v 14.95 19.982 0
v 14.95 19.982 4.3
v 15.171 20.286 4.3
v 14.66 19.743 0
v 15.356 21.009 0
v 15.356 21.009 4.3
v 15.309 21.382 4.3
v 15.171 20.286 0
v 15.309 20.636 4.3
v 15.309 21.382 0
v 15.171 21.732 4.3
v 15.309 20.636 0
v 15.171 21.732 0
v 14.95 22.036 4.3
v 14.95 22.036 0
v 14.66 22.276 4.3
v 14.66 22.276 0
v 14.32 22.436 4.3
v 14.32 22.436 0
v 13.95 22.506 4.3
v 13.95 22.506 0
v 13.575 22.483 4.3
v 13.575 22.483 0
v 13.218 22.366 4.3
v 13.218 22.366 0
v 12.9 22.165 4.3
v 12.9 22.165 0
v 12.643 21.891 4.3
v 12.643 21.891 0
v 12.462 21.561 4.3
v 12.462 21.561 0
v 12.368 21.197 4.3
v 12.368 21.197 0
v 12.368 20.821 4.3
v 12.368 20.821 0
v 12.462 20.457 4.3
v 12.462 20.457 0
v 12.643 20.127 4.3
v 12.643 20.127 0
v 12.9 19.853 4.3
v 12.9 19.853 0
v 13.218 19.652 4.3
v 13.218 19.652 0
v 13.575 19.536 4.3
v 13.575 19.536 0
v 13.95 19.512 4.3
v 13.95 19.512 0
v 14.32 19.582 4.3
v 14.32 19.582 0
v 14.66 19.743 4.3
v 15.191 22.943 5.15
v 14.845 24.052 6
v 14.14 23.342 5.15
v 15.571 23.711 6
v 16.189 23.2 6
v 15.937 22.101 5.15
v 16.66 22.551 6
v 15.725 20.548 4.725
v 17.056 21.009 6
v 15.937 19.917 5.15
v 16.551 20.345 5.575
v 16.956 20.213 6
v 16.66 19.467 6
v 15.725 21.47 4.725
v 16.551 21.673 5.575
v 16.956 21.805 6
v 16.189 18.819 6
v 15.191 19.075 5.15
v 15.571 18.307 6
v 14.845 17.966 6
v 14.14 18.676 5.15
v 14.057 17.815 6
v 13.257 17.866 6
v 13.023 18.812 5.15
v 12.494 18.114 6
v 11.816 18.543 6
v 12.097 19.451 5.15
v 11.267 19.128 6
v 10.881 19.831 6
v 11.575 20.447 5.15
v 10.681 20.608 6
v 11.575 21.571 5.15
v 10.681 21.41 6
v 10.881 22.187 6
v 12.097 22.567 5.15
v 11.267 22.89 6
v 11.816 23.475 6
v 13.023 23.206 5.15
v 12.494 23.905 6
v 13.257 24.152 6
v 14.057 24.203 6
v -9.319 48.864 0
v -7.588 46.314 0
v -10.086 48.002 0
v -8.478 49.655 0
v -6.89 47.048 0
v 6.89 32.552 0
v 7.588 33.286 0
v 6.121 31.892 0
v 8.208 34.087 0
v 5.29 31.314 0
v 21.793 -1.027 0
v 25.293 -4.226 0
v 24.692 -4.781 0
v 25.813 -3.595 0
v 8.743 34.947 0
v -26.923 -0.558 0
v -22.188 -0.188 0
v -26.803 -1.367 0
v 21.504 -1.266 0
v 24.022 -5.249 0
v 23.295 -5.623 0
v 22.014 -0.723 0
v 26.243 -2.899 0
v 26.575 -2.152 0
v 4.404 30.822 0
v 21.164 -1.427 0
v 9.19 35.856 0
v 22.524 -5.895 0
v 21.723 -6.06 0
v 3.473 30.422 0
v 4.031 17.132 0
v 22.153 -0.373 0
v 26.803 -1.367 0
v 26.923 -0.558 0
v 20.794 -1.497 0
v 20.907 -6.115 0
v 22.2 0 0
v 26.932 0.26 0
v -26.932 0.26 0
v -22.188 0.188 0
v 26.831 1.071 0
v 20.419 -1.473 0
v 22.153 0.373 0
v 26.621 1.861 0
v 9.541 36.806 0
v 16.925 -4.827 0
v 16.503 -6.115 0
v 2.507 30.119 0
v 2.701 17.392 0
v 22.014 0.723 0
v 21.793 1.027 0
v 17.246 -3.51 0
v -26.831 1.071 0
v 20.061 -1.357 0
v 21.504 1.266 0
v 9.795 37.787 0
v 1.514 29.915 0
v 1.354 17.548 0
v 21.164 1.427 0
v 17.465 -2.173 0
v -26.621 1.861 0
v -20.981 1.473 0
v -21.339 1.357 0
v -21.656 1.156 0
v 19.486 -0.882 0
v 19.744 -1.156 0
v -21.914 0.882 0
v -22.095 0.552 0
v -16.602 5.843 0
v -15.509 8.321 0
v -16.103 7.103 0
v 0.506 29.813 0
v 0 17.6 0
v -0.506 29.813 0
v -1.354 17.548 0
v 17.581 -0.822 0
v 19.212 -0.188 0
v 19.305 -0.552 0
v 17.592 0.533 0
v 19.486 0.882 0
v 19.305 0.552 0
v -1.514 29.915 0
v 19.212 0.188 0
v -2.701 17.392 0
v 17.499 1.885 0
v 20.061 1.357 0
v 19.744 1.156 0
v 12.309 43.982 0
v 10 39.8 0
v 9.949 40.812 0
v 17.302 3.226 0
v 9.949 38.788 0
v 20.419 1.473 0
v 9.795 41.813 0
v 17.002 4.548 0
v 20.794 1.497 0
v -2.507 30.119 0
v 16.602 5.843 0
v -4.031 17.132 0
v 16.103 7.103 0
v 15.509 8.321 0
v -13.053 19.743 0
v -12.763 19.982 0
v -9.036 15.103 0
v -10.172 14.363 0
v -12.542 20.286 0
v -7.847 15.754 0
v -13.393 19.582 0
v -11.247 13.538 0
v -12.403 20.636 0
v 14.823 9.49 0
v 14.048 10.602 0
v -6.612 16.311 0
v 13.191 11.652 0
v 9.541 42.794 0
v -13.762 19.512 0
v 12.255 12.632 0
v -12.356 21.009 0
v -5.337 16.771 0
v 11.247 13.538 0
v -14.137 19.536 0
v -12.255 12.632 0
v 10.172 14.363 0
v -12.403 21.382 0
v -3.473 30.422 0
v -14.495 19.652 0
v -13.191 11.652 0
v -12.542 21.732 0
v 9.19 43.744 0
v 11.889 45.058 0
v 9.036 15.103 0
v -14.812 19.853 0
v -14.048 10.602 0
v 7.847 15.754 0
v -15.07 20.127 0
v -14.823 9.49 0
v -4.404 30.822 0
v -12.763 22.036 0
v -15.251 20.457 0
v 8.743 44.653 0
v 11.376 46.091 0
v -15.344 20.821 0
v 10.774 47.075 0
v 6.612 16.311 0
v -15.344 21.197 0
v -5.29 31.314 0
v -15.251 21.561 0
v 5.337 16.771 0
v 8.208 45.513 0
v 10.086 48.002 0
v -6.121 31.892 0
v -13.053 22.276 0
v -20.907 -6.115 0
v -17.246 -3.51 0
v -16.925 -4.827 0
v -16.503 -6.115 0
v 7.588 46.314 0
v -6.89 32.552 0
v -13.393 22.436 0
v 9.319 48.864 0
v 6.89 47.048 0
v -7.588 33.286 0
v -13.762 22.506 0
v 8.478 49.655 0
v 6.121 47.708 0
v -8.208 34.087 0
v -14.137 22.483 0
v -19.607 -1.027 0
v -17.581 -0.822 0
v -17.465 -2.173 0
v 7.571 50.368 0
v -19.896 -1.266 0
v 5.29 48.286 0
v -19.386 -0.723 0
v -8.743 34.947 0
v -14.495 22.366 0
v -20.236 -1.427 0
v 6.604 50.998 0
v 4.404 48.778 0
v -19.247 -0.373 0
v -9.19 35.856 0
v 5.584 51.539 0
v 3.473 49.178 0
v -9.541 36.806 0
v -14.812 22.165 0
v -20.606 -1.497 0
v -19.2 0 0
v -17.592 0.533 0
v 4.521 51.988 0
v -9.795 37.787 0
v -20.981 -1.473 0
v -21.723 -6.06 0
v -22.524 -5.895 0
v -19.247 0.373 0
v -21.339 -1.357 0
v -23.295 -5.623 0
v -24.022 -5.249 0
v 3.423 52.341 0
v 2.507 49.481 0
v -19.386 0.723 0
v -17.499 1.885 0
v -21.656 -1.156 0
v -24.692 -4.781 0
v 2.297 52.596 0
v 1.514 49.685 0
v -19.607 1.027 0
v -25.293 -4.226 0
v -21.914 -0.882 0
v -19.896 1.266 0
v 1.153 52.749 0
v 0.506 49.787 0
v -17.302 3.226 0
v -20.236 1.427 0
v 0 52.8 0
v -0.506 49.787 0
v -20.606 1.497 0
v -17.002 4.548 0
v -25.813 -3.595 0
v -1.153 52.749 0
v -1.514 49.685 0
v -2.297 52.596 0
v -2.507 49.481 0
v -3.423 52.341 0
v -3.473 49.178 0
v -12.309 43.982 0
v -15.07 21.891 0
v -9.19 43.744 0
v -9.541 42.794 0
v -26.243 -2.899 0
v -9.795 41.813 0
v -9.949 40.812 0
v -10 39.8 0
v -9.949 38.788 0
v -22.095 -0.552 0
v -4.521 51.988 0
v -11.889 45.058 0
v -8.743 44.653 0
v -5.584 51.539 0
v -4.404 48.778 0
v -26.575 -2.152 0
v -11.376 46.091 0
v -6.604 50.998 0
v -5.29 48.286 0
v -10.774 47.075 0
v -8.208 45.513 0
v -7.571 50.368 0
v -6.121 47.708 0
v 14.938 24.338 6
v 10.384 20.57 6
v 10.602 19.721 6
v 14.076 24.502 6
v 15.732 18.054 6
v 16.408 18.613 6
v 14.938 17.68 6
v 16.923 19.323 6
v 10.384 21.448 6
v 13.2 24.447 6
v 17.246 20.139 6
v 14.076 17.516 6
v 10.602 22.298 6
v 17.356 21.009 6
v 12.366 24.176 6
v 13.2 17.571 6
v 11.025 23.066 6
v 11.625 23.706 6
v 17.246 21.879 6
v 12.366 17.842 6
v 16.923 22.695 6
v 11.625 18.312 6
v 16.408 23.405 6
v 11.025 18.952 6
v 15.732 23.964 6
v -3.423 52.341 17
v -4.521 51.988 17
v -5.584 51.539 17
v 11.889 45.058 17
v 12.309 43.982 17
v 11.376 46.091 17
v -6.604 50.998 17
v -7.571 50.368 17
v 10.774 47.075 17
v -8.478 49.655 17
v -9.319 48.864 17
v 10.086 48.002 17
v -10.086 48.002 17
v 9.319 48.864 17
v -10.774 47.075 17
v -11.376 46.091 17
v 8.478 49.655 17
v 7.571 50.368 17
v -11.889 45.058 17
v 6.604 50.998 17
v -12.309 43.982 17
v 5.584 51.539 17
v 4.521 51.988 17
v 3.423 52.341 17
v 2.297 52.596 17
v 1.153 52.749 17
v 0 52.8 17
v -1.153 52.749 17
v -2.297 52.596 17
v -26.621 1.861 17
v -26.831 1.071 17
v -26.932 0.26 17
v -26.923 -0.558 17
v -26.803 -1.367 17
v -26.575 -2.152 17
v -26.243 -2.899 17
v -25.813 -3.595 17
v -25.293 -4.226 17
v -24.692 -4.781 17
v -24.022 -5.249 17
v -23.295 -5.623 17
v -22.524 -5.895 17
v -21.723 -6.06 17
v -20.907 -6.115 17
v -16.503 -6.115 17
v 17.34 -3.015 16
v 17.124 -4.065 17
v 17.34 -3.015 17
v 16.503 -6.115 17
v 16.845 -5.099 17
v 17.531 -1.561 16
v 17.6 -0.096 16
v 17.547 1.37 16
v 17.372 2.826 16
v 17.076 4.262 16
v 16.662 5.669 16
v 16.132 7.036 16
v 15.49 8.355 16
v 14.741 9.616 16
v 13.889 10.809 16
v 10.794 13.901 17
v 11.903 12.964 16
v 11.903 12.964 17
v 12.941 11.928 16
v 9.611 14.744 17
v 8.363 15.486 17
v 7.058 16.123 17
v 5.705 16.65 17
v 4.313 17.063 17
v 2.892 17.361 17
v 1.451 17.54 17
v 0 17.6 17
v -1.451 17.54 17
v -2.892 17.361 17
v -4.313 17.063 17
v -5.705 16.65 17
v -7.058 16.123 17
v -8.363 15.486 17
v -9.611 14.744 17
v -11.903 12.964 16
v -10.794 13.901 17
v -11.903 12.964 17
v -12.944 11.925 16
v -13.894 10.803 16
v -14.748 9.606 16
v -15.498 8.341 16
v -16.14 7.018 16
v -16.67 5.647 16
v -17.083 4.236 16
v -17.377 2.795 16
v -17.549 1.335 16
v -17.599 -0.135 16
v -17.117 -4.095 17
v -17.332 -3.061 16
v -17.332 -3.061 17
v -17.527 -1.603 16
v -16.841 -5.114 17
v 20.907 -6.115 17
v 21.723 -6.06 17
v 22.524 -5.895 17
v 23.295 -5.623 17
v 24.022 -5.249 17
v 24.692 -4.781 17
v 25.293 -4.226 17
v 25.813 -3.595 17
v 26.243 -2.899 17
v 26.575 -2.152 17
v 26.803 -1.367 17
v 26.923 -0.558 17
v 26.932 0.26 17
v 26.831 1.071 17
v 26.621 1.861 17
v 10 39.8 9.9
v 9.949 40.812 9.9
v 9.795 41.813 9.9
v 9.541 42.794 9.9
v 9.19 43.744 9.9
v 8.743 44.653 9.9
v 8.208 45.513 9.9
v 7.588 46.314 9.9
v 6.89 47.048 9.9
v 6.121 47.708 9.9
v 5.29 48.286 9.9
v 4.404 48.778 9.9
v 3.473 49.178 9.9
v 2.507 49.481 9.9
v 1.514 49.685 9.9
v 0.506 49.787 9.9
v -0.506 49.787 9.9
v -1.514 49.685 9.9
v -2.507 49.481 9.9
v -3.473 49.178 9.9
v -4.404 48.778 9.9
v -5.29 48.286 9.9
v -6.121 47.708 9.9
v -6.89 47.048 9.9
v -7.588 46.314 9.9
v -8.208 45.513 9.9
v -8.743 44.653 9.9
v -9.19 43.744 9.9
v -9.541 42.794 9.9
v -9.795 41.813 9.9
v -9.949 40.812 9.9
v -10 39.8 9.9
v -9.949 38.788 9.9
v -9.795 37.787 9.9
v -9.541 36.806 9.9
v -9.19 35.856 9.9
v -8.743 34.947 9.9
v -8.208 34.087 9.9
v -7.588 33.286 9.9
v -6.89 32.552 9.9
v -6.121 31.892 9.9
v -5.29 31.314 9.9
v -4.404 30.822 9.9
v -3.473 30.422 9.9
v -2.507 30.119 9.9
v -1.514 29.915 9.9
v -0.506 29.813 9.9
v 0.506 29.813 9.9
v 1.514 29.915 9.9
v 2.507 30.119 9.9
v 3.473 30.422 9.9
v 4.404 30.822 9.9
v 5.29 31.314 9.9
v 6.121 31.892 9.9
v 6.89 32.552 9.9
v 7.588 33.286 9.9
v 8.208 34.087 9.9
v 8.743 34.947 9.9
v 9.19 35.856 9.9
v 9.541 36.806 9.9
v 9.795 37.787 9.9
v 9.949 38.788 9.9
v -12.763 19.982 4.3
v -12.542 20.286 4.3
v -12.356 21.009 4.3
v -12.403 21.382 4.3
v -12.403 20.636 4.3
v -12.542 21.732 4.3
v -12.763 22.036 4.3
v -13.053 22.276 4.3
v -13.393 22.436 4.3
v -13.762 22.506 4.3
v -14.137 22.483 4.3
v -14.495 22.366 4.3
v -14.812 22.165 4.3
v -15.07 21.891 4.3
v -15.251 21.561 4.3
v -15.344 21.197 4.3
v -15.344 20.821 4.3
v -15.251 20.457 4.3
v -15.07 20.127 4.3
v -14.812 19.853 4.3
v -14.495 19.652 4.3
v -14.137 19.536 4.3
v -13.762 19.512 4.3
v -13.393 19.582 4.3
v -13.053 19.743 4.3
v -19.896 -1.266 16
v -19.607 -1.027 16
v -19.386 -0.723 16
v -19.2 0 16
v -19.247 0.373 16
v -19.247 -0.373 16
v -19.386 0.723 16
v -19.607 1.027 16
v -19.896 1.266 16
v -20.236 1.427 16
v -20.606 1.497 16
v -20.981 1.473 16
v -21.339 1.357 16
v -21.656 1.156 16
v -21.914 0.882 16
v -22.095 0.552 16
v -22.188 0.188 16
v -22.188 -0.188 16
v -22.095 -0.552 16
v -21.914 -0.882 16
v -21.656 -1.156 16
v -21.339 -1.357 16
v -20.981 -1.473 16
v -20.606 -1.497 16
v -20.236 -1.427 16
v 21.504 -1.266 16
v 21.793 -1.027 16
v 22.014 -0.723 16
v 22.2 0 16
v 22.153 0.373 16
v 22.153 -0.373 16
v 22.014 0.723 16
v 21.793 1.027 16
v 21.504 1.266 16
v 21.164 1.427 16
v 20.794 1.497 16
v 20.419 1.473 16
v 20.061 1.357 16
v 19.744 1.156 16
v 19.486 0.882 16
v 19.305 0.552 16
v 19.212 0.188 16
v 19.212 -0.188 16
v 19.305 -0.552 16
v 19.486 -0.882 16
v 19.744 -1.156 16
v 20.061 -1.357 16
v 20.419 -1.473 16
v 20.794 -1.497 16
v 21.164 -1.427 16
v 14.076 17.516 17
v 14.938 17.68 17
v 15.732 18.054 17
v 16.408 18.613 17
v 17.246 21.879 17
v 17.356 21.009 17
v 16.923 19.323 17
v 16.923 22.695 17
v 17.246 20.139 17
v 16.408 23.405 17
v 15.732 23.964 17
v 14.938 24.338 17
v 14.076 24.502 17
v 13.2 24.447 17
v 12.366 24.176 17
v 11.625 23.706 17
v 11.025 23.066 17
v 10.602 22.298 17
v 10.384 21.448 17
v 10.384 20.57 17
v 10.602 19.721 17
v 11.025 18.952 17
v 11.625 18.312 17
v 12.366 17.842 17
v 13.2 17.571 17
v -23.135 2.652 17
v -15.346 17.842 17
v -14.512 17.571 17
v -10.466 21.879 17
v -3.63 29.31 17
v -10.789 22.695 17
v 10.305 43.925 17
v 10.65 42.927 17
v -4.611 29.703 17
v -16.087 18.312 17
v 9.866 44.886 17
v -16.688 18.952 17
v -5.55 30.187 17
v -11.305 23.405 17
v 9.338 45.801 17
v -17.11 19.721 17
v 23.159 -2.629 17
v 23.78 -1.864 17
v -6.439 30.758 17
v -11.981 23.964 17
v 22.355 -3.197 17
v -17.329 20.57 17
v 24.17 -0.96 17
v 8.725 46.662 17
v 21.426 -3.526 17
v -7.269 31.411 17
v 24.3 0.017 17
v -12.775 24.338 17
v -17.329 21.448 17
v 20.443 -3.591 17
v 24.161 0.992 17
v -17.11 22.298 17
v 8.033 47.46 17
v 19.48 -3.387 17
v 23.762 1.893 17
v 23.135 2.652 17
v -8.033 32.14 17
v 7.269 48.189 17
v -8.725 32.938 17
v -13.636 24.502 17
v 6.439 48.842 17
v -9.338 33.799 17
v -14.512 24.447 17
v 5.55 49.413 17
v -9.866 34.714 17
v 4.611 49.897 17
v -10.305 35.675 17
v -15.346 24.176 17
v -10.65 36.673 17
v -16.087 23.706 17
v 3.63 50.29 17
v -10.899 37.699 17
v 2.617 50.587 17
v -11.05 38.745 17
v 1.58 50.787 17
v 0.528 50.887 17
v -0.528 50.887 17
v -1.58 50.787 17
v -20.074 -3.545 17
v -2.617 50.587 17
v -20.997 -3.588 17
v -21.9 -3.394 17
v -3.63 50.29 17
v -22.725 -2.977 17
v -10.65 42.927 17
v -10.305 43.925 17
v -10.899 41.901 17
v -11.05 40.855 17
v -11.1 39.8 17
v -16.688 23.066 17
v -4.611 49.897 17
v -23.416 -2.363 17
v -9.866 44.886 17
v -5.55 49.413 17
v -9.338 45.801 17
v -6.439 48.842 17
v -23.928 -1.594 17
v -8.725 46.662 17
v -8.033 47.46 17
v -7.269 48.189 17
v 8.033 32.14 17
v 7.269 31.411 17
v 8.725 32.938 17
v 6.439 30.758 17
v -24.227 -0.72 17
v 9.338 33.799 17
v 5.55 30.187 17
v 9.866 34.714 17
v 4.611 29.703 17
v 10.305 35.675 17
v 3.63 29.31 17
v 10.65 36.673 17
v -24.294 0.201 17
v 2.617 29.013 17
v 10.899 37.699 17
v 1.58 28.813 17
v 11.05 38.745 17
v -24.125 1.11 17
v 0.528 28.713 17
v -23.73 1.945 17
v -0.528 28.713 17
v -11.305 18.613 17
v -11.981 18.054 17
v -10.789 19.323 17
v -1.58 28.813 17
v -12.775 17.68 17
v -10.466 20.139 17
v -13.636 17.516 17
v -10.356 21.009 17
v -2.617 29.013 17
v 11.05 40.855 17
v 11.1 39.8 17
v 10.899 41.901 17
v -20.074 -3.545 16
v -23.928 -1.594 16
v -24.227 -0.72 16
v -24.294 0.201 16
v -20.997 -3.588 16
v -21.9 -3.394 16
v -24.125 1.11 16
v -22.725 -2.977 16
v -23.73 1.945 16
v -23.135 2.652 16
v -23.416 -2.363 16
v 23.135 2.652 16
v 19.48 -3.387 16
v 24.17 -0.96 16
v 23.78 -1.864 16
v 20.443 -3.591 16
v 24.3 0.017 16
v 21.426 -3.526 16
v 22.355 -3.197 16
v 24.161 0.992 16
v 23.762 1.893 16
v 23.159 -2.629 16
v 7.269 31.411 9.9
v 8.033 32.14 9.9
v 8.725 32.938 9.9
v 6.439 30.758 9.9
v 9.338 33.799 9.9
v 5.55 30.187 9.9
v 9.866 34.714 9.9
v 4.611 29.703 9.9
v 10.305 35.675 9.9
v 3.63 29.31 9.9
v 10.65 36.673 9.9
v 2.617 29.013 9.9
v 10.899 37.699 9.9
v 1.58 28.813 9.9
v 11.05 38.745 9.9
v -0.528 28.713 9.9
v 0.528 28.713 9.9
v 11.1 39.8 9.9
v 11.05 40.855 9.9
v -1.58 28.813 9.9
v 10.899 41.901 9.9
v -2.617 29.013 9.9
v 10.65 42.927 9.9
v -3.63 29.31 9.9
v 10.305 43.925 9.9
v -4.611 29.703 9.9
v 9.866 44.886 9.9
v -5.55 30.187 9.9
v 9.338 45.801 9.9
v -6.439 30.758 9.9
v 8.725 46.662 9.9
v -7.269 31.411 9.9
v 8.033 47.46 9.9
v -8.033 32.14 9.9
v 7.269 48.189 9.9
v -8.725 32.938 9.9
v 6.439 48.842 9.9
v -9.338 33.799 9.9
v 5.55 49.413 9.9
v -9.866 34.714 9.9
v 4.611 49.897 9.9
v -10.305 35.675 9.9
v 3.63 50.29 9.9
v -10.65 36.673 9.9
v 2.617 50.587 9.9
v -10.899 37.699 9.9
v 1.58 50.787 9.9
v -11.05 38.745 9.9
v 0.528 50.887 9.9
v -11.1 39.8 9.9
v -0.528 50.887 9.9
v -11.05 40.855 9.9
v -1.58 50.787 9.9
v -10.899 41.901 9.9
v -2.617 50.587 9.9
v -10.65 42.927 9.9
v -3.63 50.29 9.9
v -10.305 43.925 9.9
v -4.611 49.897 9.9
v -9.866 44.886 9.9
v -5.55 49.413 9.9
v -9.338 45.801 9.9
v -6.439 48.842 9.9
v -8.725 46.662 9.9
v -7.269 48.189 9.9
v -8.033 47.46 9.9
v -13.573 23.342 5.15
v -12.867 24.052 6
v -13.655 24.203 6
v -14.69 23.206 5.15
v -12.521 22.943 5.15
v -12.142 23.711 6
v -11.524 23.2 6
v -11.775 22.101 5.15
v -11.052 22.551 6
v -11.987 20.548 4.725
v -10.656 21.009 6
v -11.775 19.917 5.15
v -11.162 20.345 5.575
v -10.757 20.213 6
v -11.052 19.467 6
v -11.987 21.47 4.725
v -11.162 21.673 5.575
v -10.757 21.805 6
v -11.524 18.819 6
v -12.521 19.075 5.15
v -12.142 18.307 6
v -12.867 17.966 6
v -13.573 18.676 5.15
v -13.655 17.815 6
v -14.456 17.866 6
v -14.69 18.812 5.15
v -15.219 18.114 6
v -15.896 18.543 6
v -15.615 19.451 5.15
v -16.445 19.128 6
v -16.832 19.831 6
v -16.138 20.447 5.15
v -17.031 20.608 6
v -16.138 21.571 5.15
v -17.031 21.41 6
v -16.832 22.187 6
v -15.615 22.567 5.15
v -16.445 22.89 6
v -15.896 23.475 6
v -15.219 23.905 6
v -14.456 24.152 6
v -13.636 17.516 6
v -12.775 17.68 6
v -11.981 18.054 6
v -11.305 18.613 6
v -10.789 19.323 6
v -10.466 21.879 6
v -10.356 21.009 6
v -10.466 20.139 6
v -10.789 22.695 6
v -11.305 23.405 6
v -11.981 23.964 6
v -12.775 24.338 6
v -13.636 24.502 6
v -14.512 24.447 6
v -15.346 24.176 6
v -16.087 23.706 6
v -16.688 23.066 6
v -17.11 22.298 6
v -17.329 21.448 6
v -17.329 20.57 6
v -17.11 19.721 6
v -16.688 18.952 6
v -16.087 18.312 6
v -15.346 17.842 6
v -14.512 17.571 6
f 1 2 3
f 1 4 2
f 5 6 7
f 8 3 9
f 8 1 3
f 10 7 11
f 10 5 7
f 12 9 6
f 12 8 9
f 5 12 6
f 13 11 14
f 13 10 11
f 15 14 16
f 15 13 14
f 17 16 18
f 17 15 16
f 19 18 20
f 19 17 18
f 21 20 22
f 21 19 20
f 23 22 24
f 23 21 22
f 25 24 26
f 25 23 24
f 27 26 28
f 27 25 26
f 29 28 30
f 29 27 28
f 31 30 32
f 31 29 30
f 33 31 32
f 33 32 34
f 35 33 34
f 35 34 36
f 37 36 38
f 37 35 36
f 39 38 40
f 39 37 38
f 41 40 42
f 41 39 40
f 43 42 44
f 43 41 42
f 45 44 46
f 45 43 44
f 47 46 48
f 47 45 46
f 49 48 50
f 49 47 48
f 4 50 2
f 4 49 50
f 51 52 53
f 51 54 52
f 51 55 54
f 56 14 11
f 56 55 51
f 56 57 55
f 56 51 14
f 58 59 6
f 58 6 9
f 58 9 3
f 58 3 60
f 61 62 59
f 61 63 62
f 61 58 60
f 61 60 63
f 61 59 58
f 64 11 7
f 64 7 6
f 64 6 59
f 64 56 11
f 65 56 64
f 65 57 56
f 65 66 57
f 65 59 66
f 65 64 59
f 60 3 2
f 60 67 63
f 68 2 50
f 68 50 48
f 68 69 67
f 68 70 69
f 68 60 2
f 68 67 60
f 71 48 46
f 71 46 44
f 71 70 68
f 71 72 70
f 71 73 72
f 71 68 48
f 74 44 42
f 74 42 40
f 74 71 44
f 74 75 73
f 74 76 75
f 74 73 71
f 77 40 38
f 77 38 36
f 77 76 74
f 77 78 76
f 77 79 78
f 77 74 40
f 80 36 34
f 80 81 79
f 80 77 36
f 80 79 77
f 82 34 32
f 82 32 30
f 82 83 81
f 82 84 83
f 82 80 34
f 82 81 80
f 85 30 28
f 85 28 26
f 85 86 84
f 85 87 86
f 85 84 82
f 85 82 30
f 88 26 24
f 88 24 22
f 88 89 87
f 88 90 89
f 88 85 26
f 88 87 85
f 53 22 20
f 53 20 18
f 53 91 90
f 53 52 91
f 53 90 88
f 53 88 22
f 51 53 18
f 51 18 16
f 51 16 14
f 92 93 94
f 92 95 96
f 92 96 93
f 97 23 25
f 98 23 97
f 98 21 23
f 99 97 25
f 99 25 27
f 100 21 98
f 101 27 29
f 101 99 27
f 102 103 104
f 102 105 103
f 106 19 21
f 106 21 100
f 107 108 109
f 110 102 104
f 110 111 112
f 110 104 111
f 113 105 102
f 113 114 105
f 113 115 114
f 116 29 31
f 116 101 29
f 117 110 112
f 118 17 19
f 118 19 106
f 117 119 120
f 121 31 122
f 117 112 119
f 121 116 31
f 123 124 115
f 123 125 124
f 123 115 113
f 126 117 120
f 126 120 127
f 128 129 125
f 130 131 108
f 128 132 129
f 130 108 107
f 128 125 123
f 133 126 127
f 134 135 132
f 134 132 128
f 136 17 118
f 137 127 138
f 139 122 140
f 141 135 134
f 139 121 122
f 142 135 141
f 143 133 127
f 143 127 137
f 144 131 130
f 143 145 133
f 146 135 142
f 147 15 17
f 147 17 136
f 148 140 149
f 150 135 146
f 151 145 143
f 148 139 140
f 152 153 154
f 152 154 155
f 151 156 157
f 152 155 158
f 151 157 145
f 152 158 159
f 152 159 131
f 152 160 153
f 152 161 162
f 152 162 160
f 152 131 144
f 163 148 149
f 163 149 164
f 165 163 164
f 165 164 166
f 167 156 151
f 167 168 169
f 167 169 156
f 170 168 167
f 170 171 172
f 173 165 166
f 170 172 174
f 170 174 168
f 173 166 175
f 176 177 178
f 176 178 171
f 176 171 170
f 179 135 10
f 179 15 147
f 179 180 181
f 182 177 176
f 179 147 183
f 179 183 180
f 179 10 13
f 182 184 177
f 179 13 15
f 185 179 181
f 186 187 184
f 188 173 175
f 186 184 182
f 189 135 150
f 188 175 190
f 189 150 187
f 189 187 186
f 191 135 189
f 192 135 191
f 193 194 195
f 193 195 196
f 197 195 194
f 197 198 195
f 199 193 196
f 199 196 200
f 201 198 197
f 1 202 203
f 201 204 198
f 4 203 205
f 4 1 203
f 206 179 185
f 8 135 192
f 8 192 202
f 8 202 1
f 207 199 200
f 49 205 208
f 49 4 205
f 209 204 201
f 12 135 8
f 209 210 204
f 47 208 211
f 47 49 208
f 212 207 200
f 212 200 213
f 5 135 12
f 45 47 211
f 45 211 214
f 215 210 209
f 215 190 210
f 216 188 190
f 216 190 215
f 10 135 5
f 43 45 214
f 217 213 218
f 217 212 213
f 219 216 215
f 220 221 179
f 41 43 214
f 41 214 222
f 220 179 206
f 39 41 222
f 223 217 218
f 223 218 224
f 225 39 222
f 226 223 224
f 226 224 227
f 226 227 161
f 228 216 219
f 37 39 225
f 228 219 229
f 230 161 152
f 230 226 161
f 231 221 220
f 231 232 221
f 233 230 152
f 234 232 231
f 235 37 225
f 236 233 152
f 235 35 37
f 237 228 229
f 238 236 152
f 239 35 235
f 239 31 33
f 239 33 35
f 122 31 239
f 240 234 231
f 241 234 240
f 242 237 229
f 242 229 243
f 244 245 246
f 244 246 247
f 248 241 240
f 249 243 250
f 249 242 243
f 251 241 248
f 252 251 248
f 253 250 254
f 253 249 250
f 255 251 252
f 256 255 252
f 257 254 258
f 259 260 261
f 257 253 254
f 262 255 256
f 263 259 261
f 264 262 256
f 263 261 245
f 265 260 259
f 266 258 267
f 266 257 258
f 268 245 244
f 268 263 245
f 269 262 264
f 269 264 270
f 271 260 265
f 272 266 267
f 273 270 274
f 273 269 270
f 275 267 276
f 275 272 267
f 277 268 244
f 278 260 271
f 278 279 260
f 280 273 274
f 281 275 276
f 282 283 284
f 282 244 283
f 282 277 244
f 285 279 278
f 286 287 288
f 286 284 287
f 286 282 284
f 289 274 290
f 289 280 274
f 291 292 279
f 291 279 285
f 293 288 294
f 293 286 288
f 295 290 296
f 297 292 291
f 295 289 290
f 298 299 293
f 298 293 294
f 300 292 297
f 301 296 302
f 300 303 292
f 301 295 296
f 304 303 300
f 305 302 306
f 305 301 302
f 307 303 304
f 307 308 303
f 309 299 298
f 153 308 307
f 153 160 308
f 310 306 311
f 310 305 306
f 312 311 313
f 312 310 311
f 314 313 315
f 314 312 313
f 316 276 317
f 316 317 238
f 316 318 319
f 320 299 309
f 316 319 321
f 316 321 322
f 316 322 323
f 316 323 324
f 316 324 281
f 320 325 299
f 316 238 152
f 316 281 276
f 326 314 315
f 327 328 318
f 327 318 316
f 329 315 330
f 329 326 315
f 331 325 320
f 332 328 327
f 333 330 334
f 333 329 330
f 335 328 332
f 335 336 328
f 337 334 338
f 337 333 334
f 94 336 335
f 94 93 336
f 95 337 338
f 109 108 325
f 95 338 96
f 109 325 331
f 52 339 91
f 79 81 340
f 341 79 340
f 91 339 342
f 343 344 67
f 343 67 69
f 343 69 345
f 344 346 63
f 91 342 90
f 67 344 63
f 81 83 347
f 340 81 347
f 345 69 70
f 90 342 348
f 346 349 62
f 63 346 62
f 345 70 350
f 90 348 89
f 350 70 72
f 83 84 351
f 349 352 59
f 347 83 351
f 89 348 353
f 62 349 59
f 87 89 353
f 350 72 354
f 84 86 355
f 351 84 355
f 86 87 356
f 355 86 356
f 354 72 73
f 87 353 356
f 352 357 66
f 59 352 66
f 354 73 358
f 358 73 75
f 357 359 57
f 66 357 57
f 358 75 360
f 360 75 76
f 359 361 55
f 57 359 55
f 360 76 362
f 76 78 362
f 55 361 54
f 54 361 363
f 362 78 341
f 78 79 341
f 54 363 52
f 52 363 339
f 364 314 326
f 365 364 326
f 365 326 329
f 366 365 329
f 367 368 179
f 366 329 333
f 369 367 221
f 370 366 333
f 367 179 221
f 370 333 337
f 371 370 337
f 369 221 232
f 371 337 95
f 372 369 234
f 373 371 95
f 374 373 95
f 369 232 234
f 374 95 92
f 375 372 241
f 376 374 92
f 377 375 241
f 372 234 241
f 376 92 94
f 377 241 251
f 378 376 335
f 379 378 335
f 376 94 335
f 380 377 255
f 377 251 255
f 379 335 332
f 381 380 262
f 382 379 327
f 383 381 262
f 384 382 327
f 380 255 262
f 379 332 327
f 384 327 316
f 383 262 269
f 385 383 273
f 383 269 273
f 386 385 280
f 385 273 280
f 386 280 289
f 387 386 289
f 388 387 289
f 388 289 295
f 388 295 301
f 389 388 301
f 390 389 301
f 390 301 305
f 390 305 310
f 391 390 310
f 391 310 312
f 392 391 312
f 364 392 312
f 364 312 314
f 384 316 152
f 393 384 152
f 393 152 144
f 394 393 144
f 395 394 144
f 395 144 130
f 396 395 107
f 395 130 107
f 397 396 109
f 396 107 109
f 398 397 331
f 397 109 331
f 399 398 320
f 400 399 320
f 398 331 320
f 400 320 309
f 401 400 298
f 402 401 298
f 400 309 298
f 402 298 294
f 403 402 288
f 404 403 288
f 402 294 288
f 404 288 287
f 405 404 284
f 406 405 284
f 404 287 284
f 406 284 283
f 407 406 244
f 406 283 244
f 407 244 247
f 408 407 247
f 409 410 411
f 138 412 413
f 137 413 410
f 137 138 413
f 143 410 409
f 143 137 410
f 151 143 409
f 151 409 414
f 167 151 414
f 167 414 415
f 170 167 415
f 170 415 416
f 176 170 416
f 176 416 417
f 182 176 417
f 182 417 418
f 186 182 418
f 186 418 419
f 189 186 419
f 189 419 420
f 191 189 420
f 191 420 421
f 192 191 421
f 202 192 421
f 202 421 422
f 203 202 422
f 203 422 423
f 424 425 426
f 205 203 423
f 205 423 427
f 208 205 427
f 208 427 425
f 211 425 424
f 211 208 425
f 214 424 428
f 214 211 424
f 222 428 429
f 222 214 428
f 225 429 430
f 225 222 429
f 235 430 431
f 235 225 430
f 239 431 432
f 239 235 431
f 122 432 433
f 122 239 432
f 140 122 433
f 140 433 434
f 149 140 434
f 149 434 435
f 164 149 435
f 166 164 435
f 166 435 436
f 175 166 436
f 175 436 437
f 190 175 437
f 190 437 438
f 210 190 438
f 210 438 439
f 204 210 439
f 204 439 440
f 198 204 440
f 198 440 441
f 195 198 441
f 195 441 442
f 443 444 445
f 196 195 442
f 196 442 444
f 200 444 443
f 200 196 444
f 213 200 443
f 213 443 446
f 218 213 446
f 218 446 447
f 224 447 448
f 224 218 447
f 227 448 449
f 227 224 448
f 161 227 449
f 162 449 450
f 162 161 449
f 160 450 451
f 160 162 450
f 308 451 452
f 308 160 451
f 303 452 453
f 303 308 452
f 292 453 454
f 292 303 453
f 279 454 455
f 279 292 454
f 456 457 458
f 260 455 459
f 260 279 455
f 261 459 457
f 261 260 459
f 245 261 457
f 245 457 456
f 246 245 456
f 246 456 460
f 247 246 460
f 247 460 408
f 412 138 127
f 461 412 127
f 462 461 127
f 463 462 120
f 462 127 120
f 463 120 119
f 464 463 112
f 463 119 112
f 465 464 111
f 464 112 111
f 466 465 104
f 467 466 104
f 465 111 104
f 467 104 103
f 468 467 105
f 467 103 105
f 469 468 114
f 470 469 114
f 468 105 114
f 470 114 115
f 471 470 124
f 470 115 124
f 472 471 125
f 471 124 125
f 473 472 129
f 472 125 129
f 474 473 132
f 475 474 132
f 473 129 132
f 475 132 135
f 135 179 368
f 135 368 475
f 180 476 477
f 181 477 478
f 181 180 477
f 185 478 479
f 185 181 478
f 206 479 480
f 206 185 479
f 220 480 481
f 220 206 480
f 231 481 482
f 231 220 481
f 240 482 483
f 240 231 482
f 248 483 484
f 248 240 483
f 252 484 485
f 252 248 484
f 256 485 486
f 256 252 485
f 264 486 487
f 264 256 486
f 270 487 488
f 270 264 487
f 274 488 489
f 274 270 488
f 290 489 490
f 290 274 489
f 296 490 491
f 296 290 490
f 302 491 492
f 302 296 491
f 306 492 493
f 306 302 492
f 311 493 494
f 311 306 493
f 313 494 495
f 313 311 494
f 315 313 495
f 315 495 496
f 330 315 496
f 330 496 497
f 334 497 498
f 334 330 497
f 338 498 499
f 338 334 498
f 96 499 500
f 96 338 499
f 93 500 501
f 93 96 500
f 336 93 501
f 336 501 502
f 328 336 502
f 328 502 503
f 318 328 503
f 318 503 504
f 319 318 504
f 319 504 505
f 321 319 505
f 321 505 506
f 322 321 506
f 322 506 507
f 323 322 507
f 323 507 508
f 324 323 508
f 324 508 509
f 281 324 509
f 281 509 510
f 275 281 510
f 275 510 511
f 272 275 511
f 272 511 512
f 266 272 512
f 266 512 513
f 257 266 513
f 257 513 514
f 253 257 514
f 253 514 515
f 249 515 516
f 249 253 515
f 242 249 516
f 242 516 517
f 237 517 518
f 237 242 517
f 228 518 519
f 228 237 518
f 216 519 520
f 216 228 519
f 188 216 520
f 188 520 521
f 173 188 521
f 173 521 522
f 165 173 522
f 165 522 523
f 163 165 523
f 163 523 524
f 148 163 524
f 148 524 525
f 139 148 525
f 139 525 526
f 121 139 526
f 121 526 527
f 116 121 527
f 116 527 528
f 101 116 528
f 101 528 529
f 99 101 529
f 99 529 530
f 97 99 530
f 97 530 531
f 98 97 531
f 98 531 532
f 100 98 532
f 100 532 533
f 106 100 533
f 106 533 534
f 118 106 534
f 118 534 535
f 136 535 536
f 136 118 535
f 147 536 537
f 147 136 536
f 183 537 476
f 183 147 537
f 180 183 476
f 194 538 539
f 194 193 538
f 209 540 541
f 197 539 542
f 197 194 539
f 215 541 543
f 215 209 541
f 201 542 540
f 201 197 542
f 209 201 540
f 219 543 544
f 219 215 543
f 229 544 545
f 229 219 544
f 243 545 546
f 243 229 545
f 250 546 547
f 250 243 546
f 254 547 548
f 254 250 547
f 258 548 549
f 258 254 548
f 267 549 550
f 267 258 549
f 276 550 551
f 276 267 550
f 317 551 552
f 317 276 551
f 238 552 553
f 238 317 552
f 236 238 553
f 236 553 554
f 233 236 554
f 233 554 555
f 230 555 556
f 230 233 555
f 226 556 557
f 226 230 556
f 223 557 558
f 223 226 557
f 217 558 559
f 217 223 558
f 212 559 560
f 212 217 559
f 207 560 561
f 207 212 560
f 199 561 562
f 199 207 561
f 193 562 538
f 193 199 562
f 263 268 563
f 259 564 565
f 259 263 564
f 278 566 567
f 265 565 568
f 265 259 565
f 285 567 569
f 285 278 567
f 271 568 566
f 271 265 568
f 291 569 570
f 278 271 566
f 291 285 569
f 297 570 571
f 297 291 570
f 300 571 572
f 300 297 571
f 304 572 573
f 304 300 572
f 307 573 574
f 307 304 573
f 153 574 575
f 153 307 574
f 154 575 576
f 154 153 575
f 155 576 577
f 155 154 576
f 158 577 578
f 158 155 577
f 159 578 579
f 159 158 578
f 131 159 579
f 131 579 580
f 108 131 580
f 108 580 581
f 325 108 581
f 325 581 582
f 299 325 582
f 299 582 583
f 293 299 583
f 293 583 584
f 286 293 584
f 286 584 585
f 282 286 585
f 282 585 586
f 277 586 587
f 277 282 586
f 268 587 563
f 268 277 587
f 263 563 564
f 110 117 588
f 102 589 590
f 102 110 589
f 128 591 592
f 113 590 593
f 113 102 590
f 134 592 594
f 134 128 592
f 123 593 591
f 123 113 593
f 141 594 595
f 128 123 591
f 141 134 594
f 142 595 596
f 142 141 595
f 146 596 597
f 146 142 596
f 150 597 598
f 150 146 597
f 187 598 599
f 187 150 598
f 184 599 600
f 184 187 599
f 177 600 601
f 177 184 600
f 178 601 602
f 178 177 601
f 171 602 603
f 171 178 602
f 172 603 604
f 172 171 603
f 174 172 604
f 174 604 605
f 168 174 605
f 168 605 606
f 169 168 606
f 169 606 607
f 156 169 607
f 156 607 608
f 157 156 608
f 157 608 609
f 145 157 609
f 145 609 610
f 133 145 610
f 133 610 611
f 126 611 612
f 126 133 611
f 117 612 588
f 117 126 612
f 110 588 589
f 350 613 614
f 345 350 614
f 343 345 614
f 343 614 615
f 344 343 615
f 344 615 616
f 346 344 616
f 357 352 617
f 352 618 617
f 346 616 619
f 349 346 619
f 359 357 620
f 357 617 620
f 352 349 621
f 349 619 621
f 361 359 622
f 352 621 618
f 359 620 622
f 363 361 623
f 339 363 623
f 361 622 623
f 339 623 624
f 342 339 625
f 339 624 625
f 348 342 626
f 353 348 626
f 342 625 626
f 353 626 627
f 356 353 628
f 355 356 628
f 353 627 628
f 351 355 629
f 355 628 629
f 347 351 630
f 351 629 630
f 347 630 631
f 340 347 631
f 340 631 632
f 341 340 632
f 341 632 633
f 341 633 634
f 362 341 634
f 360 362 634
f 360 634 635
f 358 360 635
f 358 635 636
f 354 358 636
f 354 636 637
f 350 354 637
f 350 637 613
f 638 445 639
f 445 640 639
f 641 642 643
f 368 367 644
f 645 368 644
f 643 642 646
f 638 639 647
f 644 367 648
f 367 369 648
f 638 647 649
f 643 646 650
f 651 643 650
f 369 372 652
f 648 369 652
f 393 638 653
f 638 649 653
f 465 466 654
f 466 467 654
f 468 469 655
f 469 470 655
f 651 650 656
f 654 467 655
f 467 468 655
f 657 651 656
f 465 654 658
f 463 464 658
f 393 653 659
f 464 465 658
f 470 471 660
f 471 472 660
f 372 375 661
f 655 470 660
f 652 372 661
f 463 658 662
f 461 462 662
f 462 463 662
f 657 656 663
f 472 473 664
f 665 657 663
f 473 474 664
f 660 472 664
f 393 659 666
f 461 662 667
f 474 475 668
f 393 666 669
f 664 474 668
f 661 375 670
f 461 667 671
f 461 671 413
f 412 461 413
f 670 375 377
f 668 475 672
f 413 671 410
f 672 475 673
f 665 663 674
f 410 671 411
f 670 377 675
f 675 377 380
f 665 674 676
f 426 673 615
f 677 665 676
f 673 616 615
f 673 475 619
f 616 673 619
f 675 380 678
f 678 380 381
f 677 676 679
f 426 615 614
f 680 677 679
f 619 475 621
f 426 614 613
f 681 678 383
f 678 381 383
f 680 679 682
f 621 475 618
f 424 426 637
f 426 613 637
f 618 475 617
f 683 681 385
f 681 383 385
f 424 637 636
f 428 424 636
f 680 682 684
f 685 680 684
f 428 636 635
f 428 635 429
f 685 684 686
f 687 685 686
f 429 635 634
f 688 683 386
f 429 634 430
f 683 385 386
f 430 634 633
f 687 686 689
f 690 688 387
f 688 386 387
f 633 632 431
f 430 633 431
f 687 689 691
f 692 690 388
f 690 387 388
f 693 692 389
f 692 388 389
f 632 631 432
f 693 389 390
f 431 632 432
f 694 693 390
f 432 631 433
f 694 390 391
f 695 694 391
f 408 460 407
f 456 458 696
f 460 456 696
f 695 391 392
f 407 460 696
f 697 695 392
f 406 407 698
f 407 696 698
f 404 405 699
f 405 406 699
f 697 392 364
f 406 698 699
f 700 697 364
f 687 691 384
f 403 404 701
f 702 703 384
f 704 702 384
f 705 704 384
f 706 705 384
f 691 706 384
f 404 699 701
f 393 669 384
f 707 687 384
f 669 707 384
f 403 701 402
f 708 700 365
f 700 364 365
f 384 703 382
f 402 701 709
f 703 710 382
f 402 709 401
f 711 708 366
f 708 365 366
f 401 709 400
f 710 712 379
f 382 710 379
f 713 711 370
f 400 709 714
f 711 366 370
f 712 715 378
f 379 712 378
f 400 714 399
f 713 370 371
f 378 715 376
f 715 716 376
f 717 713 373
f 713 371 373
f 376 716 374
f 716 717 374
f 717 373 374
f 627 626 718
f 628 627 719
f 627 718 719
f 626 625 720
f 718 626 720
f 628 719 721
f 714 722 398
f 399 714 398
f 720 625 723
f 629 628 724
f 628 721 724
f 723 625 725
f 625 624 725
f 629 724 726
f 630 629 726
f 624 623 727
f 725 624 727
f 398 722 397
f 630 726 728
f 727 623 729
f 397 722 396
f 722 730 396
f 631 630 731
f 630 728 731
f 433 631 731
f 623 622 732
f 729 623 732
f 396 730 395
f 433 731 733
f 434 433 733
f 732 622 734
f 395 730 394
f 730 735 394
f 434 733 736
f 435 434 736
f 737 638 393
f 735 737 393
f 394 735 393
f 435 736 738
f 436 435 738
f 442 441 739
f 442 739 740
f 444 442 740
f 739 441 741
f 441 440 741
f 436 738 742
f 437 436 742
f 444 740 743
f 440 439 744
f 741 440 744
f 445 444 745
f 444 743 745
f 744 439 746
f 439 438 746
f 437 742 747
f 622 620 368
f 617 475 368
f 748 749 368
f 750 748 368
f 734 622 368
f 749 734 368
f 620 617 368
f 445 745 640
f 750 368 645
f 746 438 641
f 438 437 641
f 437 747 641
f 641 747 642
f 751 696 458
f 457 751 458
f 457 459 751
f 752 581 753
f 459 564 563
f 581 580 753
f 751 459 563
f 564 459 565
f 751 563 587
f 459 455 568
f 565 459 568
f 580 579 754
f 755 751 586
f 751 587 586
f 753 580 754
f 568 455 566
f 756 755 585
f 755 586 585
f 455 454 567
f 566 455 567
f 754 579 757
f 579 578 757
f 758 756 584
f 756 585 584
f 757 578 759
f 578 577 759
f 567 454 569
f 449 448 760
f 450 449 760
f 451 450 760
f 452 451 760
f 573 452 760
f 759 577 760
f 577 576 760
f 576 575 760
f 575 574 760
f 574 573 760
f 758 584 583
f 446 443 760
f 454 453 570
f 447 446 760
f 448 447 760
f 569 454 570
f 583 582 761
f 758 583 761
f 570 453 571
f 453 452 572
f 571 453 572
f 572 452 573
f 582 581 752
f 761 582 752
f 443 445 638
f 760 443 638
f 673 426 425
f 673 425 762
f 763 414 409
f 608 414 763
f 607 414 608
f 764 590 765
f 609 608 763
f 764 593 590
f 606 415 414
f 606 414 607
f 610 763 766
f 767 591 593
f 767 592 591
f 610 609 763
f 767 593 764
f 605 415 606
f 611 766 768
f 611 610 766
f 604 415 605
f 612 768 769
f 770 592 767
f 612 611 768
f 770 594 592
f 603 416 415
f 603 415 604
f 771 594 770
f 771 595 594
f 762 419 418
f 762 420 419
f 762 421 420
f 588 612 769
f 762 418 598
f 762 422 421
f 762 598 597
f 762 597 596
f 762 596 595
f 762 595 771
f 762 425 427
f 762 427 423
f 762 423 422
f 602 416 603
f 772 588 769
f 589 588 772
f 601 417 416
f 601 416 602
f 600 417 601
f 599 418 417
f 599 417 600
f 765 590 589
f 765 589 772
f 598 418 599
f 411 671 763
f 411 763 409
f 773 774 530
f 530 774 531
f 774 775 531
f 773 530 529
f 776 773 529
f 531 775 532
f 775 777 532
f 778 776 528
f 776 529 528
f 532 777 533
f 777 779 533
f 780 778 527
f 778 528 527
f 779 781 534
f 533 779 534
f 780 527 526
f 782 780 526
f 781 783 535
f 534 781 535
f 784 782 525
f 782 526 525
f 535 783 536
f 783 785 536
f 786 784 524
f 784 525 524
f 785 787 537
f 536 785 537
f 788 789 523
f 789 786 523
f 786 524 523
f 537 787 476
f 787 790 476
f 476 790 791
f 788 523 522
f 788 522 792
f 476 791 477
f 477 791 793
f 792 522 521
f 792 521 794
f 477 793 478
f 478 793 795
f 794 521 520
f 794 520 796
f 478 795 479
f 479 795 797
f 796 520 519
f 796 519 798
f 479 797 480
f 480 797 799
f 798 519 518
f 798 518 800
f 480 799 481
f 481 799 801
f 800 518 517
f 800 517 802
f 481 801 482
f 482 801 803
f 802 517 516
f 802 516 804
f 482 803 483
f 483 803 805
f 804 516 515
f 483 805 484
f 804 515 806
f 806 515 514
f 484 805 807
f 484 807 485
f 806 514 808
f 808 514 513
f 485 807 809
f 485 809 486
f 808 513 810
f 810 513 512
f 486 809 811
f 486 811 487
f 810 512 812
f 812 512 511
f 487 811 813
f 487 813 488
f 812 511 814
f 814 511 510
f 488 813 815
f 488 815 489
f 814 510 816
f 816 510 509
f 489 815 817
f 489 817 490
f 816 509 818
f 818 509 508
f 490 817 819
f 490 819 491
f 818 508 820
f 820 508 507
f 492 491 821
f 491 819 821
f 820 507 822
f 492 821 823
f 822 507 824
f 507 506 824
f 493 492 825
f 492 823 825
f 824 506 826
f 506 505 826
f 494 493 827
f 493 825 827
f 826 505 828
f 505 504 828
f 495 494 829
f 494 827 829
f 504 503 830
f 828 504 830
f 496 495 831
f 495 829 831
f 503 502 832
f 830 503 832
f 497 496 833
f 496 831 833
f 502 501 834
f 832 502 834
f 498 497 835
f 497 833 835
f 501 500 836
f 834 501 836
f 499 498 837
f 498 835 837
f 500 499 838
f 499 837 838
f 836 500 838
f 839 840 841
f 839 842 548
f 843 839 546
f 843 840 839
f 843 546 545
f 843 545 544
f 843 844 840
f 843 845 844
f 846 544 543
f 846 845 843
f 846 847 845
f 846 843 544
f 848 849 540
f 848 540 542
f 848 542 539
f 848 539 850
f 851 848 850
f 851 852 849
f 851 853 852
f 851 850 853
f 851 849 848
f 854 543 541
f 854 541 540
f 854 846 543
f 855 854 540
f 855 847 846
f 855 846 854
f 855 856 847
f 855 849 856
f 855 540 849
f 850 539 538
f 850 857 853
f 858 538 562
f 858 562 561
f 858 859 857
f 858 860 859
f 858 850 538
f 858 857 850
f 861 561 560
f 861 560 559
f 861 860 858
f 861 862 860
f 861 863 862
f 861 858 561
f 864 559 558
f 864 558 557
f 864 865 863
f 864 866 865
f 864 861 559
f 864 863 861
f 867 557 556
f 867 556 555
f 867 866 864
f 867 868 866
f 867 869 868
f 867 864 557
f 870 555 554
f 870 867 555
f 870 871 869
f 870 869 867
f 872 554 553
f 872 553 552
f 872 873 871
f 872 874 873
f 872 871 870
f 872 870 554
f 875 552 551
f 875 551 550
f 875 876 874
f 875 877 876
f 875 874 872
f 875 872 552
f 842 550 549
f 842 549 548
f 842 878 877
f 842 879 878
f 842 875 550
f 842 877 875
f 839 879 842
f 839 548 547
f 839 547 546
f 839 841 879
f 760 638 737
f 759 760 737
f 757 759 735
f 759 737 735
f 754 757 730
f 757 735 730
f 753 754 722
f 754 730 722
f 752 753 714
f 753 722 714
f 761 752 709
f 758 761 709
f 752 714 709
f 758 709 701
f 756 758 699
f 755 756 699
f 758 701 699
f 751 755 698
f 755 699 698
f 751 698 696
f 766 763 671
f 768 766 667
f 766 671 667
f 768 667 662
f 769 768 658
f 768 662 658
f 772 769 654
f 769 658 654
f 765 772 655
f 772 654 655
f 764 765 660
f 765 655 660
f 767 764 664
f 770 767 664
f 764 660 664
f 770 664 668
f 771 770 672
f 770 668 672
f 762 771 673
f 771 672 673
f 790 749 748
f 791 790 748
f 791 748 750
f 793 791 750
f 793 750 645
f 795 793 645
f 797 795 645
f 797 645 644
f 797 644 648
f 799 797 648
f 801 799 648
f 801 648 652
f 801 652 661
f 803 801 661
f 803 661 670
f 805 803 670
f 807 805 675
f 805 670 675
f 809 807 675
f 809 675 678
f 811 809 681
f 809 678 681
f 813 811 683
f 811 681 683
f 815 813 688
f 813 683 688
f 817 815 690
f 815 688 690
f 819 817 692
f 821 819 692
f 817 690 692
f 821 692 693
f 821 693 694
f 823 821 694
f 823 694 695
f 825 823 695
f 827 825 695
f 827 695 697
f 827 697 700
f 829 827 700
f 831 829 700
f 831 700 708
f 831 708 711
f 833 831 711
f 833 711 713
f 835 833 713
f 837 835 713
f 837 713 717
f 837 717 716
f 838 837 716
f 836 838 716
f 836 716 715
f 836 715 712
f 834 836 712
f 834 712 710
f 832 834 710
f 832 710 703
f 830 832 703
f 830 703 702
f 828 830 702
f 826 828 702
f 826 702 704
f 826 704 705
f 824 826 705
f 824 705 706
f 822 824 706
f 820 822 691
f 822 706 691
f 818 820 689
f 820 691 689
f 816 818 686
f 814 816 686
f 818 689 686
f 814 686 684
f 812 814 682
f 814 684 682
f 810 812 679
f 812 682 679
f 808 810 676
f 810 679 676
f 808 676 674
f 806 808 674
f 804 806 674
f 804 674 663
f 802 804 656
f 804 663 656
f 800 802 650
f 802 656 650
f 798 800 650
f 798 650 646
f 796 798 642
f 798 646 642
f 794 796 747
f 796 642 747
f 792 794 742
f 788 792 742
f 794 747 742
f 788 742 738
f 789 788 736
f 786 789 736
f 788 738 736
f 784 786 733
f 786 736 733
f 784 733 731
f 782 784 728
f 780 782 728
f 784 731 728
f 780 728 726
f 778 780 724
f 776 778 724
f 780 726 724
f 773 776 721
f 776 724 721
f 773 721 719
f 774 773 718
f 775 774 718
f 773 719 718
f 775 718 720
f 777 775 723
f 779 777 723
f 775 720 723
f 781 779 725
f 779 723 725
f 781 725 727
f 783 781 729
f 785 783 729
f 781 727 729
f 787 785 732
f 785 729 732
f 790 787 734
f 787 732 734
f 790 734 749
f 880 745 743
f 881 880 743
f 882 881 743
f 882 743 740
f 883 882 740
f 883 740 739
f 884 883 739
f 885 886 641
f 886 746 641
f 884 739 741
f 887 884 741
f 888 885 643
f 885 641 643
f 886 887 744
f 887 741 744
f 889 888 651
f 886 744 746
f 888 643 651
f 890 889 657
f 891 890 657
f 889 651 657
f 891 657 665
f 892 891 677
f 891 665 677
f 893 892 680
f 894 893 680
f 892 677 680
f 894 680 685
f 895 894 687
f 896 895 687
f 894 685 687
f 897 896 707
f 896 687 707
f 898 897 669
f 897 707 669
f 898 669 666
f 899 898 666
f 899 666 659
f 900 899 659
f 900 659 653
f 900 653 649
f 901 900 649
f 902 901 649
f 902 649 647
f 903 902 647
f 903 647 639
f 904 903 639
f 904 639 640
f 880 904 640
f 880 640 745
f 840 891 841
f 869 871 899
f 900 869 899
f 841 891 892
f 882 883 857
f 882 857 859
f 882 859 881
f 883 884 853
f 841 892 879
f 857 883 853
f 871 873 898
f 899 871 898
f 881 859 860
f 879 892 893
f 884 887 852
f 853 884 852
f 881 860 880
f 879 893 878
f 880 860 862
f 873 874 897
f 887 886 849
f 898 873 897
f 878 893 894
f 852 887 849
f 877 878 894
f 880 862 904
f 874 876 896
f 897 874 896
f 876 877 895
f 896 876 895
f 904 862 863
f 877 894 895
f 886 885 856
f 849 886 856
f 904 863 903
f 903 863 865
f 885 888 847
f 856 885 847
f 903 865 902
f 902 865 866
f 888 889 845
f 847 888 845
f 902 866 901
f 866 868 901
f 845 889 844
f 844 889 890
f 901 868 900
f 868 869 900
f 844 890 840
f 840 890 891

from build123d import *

# Parameters (mm, degrees)
SKETCH_R        = 10
SKETCH_R_2      = 1.5
EXTRUDE_DEPTH   = 17
SKETCH001_R     = 11.1
POCKET_DEPTH    = 7.1
SKETCH002_R     = 3.5
POCKET001_DEPTH = 11
CHAMFER_SIZE    = 1.7
POCKET002_DEPTH = 1


with BuildPart() as part:
    # Sketch → Extrude (new body)
    with BuildSketch(Plane.XY):
        with BuildLine():
            Line((-12.308851, 43.982367), (-26.621029, 1.861132))
            ThreePointArc((-26.621029, 1.861132), (-25.812964, -3.594765), (-20.907103, -6.115142))
            Line((-20.907103, -6.115142), (-16.503486, -6.115142))
            ThreePointArc((16.503486, -6.115142), (0, 17.6), (-16.503486, -6.115142))
            Line((16.503486, -6.115142), (20.907103, -6.115142))
            ThreePointArc((20.907103, -6.115142), (25.812964, -3.594765), (26.621029, 1.861132))
            Line((12.308851, 43.982367), (26.621029, 1.861132))
            ThreePointArc((12.308851, 43.982367), (0, 52.8), (-12.308851, 43.982367))
        make_face()
        with Locations((0, 39.8)):
            Circle(SKETCH_R, mode=Mode.SUBTRACT)
        with Locations((-13.85625, 21.009073)):
            Circle(SKETCH_R_2, mode=Mode.SUBTRACT)
        with Locations((13.85625, 21.009073)):
            Circle(SKETCH_R_2, mode=Mode.SUBTRACT)
        with Locations((20.7, 0)):
            Circle(SKETCH_R_2, mode=Mode.SUBTRACT)
        with Locations((-20.7, 0)):
            Circle(SKETCH_R_2, mode=Mode.SUBTRACT)
    extrude(amount=EXTRUDE_DEPTH)

    # Sketch001 → Pocket (cut)
    with BuildSketch(Plane.XY.offset(17)):
        with Locations((0, 39.8)):
            Circle(SKETCH001_R)
    extrude(amount=-POCKET_DEPTH, mode=Mode.SUBTRACT)

    # Sketch002 → Pocket001 (cut)
    with BuildSketch(Plane.XY.offset(17)):
        with Locations((-13.85625, 21.009073)):
            Circle(SKETCH002_R)
        with Locations((13.85625, 21.009073)):
            Circle(SKETCH002_R)
    extrude(amount=-POCKET001_DEPTH, mode=Mode.SUBTRACT)

    # Chamfer
    chamfer_edges = [part.edges().sort_by_distance(p)[0] for p in [
        (12.35625, 21.009073, 6),
        (-15.35625, 21.009073, 6),
    ]]
    chamfer(chamfer_edges, length=CHAMFER_SIZE)

    # Sketch003 → Pocket002 (cut)
    with BuildSketch(Plane.XY.offset(17)):
        with BuildLine():
            Line((-11.903391, 12.964154), (-23.134783, 2.651761))
            ThreePointArc((-23.134783, 2.651761), (-23.92773, -1.59429), (-20.073913, -3.54514))
            Line((-20.073913, -3.54514), (-17.331794, -3.06087))
            ThreePointArc((-11.903391, 12.964154), (-16.669564, 5.646738), (-17.331794, -3.06087))
        make_face()
        with BuildLine():
            Line((11.903391, 12.964154), (23.134782, 2.651761))
            ThreePointArc((19.479755, -3.386887), (23.779787, -1.864111), (23.134782, 2.651761))
            Line((19.479755, -3.386887), (17.339862, -3.01483))
            ThreePointArc((17.339862, -3.01483), (16.662051, 5.668868), (11.903391, 12.964154))
        make_face()
    extrude(amount=-POCKET002_DEPTH, mode=Mode.SUBTRACT)


solid = part.part
